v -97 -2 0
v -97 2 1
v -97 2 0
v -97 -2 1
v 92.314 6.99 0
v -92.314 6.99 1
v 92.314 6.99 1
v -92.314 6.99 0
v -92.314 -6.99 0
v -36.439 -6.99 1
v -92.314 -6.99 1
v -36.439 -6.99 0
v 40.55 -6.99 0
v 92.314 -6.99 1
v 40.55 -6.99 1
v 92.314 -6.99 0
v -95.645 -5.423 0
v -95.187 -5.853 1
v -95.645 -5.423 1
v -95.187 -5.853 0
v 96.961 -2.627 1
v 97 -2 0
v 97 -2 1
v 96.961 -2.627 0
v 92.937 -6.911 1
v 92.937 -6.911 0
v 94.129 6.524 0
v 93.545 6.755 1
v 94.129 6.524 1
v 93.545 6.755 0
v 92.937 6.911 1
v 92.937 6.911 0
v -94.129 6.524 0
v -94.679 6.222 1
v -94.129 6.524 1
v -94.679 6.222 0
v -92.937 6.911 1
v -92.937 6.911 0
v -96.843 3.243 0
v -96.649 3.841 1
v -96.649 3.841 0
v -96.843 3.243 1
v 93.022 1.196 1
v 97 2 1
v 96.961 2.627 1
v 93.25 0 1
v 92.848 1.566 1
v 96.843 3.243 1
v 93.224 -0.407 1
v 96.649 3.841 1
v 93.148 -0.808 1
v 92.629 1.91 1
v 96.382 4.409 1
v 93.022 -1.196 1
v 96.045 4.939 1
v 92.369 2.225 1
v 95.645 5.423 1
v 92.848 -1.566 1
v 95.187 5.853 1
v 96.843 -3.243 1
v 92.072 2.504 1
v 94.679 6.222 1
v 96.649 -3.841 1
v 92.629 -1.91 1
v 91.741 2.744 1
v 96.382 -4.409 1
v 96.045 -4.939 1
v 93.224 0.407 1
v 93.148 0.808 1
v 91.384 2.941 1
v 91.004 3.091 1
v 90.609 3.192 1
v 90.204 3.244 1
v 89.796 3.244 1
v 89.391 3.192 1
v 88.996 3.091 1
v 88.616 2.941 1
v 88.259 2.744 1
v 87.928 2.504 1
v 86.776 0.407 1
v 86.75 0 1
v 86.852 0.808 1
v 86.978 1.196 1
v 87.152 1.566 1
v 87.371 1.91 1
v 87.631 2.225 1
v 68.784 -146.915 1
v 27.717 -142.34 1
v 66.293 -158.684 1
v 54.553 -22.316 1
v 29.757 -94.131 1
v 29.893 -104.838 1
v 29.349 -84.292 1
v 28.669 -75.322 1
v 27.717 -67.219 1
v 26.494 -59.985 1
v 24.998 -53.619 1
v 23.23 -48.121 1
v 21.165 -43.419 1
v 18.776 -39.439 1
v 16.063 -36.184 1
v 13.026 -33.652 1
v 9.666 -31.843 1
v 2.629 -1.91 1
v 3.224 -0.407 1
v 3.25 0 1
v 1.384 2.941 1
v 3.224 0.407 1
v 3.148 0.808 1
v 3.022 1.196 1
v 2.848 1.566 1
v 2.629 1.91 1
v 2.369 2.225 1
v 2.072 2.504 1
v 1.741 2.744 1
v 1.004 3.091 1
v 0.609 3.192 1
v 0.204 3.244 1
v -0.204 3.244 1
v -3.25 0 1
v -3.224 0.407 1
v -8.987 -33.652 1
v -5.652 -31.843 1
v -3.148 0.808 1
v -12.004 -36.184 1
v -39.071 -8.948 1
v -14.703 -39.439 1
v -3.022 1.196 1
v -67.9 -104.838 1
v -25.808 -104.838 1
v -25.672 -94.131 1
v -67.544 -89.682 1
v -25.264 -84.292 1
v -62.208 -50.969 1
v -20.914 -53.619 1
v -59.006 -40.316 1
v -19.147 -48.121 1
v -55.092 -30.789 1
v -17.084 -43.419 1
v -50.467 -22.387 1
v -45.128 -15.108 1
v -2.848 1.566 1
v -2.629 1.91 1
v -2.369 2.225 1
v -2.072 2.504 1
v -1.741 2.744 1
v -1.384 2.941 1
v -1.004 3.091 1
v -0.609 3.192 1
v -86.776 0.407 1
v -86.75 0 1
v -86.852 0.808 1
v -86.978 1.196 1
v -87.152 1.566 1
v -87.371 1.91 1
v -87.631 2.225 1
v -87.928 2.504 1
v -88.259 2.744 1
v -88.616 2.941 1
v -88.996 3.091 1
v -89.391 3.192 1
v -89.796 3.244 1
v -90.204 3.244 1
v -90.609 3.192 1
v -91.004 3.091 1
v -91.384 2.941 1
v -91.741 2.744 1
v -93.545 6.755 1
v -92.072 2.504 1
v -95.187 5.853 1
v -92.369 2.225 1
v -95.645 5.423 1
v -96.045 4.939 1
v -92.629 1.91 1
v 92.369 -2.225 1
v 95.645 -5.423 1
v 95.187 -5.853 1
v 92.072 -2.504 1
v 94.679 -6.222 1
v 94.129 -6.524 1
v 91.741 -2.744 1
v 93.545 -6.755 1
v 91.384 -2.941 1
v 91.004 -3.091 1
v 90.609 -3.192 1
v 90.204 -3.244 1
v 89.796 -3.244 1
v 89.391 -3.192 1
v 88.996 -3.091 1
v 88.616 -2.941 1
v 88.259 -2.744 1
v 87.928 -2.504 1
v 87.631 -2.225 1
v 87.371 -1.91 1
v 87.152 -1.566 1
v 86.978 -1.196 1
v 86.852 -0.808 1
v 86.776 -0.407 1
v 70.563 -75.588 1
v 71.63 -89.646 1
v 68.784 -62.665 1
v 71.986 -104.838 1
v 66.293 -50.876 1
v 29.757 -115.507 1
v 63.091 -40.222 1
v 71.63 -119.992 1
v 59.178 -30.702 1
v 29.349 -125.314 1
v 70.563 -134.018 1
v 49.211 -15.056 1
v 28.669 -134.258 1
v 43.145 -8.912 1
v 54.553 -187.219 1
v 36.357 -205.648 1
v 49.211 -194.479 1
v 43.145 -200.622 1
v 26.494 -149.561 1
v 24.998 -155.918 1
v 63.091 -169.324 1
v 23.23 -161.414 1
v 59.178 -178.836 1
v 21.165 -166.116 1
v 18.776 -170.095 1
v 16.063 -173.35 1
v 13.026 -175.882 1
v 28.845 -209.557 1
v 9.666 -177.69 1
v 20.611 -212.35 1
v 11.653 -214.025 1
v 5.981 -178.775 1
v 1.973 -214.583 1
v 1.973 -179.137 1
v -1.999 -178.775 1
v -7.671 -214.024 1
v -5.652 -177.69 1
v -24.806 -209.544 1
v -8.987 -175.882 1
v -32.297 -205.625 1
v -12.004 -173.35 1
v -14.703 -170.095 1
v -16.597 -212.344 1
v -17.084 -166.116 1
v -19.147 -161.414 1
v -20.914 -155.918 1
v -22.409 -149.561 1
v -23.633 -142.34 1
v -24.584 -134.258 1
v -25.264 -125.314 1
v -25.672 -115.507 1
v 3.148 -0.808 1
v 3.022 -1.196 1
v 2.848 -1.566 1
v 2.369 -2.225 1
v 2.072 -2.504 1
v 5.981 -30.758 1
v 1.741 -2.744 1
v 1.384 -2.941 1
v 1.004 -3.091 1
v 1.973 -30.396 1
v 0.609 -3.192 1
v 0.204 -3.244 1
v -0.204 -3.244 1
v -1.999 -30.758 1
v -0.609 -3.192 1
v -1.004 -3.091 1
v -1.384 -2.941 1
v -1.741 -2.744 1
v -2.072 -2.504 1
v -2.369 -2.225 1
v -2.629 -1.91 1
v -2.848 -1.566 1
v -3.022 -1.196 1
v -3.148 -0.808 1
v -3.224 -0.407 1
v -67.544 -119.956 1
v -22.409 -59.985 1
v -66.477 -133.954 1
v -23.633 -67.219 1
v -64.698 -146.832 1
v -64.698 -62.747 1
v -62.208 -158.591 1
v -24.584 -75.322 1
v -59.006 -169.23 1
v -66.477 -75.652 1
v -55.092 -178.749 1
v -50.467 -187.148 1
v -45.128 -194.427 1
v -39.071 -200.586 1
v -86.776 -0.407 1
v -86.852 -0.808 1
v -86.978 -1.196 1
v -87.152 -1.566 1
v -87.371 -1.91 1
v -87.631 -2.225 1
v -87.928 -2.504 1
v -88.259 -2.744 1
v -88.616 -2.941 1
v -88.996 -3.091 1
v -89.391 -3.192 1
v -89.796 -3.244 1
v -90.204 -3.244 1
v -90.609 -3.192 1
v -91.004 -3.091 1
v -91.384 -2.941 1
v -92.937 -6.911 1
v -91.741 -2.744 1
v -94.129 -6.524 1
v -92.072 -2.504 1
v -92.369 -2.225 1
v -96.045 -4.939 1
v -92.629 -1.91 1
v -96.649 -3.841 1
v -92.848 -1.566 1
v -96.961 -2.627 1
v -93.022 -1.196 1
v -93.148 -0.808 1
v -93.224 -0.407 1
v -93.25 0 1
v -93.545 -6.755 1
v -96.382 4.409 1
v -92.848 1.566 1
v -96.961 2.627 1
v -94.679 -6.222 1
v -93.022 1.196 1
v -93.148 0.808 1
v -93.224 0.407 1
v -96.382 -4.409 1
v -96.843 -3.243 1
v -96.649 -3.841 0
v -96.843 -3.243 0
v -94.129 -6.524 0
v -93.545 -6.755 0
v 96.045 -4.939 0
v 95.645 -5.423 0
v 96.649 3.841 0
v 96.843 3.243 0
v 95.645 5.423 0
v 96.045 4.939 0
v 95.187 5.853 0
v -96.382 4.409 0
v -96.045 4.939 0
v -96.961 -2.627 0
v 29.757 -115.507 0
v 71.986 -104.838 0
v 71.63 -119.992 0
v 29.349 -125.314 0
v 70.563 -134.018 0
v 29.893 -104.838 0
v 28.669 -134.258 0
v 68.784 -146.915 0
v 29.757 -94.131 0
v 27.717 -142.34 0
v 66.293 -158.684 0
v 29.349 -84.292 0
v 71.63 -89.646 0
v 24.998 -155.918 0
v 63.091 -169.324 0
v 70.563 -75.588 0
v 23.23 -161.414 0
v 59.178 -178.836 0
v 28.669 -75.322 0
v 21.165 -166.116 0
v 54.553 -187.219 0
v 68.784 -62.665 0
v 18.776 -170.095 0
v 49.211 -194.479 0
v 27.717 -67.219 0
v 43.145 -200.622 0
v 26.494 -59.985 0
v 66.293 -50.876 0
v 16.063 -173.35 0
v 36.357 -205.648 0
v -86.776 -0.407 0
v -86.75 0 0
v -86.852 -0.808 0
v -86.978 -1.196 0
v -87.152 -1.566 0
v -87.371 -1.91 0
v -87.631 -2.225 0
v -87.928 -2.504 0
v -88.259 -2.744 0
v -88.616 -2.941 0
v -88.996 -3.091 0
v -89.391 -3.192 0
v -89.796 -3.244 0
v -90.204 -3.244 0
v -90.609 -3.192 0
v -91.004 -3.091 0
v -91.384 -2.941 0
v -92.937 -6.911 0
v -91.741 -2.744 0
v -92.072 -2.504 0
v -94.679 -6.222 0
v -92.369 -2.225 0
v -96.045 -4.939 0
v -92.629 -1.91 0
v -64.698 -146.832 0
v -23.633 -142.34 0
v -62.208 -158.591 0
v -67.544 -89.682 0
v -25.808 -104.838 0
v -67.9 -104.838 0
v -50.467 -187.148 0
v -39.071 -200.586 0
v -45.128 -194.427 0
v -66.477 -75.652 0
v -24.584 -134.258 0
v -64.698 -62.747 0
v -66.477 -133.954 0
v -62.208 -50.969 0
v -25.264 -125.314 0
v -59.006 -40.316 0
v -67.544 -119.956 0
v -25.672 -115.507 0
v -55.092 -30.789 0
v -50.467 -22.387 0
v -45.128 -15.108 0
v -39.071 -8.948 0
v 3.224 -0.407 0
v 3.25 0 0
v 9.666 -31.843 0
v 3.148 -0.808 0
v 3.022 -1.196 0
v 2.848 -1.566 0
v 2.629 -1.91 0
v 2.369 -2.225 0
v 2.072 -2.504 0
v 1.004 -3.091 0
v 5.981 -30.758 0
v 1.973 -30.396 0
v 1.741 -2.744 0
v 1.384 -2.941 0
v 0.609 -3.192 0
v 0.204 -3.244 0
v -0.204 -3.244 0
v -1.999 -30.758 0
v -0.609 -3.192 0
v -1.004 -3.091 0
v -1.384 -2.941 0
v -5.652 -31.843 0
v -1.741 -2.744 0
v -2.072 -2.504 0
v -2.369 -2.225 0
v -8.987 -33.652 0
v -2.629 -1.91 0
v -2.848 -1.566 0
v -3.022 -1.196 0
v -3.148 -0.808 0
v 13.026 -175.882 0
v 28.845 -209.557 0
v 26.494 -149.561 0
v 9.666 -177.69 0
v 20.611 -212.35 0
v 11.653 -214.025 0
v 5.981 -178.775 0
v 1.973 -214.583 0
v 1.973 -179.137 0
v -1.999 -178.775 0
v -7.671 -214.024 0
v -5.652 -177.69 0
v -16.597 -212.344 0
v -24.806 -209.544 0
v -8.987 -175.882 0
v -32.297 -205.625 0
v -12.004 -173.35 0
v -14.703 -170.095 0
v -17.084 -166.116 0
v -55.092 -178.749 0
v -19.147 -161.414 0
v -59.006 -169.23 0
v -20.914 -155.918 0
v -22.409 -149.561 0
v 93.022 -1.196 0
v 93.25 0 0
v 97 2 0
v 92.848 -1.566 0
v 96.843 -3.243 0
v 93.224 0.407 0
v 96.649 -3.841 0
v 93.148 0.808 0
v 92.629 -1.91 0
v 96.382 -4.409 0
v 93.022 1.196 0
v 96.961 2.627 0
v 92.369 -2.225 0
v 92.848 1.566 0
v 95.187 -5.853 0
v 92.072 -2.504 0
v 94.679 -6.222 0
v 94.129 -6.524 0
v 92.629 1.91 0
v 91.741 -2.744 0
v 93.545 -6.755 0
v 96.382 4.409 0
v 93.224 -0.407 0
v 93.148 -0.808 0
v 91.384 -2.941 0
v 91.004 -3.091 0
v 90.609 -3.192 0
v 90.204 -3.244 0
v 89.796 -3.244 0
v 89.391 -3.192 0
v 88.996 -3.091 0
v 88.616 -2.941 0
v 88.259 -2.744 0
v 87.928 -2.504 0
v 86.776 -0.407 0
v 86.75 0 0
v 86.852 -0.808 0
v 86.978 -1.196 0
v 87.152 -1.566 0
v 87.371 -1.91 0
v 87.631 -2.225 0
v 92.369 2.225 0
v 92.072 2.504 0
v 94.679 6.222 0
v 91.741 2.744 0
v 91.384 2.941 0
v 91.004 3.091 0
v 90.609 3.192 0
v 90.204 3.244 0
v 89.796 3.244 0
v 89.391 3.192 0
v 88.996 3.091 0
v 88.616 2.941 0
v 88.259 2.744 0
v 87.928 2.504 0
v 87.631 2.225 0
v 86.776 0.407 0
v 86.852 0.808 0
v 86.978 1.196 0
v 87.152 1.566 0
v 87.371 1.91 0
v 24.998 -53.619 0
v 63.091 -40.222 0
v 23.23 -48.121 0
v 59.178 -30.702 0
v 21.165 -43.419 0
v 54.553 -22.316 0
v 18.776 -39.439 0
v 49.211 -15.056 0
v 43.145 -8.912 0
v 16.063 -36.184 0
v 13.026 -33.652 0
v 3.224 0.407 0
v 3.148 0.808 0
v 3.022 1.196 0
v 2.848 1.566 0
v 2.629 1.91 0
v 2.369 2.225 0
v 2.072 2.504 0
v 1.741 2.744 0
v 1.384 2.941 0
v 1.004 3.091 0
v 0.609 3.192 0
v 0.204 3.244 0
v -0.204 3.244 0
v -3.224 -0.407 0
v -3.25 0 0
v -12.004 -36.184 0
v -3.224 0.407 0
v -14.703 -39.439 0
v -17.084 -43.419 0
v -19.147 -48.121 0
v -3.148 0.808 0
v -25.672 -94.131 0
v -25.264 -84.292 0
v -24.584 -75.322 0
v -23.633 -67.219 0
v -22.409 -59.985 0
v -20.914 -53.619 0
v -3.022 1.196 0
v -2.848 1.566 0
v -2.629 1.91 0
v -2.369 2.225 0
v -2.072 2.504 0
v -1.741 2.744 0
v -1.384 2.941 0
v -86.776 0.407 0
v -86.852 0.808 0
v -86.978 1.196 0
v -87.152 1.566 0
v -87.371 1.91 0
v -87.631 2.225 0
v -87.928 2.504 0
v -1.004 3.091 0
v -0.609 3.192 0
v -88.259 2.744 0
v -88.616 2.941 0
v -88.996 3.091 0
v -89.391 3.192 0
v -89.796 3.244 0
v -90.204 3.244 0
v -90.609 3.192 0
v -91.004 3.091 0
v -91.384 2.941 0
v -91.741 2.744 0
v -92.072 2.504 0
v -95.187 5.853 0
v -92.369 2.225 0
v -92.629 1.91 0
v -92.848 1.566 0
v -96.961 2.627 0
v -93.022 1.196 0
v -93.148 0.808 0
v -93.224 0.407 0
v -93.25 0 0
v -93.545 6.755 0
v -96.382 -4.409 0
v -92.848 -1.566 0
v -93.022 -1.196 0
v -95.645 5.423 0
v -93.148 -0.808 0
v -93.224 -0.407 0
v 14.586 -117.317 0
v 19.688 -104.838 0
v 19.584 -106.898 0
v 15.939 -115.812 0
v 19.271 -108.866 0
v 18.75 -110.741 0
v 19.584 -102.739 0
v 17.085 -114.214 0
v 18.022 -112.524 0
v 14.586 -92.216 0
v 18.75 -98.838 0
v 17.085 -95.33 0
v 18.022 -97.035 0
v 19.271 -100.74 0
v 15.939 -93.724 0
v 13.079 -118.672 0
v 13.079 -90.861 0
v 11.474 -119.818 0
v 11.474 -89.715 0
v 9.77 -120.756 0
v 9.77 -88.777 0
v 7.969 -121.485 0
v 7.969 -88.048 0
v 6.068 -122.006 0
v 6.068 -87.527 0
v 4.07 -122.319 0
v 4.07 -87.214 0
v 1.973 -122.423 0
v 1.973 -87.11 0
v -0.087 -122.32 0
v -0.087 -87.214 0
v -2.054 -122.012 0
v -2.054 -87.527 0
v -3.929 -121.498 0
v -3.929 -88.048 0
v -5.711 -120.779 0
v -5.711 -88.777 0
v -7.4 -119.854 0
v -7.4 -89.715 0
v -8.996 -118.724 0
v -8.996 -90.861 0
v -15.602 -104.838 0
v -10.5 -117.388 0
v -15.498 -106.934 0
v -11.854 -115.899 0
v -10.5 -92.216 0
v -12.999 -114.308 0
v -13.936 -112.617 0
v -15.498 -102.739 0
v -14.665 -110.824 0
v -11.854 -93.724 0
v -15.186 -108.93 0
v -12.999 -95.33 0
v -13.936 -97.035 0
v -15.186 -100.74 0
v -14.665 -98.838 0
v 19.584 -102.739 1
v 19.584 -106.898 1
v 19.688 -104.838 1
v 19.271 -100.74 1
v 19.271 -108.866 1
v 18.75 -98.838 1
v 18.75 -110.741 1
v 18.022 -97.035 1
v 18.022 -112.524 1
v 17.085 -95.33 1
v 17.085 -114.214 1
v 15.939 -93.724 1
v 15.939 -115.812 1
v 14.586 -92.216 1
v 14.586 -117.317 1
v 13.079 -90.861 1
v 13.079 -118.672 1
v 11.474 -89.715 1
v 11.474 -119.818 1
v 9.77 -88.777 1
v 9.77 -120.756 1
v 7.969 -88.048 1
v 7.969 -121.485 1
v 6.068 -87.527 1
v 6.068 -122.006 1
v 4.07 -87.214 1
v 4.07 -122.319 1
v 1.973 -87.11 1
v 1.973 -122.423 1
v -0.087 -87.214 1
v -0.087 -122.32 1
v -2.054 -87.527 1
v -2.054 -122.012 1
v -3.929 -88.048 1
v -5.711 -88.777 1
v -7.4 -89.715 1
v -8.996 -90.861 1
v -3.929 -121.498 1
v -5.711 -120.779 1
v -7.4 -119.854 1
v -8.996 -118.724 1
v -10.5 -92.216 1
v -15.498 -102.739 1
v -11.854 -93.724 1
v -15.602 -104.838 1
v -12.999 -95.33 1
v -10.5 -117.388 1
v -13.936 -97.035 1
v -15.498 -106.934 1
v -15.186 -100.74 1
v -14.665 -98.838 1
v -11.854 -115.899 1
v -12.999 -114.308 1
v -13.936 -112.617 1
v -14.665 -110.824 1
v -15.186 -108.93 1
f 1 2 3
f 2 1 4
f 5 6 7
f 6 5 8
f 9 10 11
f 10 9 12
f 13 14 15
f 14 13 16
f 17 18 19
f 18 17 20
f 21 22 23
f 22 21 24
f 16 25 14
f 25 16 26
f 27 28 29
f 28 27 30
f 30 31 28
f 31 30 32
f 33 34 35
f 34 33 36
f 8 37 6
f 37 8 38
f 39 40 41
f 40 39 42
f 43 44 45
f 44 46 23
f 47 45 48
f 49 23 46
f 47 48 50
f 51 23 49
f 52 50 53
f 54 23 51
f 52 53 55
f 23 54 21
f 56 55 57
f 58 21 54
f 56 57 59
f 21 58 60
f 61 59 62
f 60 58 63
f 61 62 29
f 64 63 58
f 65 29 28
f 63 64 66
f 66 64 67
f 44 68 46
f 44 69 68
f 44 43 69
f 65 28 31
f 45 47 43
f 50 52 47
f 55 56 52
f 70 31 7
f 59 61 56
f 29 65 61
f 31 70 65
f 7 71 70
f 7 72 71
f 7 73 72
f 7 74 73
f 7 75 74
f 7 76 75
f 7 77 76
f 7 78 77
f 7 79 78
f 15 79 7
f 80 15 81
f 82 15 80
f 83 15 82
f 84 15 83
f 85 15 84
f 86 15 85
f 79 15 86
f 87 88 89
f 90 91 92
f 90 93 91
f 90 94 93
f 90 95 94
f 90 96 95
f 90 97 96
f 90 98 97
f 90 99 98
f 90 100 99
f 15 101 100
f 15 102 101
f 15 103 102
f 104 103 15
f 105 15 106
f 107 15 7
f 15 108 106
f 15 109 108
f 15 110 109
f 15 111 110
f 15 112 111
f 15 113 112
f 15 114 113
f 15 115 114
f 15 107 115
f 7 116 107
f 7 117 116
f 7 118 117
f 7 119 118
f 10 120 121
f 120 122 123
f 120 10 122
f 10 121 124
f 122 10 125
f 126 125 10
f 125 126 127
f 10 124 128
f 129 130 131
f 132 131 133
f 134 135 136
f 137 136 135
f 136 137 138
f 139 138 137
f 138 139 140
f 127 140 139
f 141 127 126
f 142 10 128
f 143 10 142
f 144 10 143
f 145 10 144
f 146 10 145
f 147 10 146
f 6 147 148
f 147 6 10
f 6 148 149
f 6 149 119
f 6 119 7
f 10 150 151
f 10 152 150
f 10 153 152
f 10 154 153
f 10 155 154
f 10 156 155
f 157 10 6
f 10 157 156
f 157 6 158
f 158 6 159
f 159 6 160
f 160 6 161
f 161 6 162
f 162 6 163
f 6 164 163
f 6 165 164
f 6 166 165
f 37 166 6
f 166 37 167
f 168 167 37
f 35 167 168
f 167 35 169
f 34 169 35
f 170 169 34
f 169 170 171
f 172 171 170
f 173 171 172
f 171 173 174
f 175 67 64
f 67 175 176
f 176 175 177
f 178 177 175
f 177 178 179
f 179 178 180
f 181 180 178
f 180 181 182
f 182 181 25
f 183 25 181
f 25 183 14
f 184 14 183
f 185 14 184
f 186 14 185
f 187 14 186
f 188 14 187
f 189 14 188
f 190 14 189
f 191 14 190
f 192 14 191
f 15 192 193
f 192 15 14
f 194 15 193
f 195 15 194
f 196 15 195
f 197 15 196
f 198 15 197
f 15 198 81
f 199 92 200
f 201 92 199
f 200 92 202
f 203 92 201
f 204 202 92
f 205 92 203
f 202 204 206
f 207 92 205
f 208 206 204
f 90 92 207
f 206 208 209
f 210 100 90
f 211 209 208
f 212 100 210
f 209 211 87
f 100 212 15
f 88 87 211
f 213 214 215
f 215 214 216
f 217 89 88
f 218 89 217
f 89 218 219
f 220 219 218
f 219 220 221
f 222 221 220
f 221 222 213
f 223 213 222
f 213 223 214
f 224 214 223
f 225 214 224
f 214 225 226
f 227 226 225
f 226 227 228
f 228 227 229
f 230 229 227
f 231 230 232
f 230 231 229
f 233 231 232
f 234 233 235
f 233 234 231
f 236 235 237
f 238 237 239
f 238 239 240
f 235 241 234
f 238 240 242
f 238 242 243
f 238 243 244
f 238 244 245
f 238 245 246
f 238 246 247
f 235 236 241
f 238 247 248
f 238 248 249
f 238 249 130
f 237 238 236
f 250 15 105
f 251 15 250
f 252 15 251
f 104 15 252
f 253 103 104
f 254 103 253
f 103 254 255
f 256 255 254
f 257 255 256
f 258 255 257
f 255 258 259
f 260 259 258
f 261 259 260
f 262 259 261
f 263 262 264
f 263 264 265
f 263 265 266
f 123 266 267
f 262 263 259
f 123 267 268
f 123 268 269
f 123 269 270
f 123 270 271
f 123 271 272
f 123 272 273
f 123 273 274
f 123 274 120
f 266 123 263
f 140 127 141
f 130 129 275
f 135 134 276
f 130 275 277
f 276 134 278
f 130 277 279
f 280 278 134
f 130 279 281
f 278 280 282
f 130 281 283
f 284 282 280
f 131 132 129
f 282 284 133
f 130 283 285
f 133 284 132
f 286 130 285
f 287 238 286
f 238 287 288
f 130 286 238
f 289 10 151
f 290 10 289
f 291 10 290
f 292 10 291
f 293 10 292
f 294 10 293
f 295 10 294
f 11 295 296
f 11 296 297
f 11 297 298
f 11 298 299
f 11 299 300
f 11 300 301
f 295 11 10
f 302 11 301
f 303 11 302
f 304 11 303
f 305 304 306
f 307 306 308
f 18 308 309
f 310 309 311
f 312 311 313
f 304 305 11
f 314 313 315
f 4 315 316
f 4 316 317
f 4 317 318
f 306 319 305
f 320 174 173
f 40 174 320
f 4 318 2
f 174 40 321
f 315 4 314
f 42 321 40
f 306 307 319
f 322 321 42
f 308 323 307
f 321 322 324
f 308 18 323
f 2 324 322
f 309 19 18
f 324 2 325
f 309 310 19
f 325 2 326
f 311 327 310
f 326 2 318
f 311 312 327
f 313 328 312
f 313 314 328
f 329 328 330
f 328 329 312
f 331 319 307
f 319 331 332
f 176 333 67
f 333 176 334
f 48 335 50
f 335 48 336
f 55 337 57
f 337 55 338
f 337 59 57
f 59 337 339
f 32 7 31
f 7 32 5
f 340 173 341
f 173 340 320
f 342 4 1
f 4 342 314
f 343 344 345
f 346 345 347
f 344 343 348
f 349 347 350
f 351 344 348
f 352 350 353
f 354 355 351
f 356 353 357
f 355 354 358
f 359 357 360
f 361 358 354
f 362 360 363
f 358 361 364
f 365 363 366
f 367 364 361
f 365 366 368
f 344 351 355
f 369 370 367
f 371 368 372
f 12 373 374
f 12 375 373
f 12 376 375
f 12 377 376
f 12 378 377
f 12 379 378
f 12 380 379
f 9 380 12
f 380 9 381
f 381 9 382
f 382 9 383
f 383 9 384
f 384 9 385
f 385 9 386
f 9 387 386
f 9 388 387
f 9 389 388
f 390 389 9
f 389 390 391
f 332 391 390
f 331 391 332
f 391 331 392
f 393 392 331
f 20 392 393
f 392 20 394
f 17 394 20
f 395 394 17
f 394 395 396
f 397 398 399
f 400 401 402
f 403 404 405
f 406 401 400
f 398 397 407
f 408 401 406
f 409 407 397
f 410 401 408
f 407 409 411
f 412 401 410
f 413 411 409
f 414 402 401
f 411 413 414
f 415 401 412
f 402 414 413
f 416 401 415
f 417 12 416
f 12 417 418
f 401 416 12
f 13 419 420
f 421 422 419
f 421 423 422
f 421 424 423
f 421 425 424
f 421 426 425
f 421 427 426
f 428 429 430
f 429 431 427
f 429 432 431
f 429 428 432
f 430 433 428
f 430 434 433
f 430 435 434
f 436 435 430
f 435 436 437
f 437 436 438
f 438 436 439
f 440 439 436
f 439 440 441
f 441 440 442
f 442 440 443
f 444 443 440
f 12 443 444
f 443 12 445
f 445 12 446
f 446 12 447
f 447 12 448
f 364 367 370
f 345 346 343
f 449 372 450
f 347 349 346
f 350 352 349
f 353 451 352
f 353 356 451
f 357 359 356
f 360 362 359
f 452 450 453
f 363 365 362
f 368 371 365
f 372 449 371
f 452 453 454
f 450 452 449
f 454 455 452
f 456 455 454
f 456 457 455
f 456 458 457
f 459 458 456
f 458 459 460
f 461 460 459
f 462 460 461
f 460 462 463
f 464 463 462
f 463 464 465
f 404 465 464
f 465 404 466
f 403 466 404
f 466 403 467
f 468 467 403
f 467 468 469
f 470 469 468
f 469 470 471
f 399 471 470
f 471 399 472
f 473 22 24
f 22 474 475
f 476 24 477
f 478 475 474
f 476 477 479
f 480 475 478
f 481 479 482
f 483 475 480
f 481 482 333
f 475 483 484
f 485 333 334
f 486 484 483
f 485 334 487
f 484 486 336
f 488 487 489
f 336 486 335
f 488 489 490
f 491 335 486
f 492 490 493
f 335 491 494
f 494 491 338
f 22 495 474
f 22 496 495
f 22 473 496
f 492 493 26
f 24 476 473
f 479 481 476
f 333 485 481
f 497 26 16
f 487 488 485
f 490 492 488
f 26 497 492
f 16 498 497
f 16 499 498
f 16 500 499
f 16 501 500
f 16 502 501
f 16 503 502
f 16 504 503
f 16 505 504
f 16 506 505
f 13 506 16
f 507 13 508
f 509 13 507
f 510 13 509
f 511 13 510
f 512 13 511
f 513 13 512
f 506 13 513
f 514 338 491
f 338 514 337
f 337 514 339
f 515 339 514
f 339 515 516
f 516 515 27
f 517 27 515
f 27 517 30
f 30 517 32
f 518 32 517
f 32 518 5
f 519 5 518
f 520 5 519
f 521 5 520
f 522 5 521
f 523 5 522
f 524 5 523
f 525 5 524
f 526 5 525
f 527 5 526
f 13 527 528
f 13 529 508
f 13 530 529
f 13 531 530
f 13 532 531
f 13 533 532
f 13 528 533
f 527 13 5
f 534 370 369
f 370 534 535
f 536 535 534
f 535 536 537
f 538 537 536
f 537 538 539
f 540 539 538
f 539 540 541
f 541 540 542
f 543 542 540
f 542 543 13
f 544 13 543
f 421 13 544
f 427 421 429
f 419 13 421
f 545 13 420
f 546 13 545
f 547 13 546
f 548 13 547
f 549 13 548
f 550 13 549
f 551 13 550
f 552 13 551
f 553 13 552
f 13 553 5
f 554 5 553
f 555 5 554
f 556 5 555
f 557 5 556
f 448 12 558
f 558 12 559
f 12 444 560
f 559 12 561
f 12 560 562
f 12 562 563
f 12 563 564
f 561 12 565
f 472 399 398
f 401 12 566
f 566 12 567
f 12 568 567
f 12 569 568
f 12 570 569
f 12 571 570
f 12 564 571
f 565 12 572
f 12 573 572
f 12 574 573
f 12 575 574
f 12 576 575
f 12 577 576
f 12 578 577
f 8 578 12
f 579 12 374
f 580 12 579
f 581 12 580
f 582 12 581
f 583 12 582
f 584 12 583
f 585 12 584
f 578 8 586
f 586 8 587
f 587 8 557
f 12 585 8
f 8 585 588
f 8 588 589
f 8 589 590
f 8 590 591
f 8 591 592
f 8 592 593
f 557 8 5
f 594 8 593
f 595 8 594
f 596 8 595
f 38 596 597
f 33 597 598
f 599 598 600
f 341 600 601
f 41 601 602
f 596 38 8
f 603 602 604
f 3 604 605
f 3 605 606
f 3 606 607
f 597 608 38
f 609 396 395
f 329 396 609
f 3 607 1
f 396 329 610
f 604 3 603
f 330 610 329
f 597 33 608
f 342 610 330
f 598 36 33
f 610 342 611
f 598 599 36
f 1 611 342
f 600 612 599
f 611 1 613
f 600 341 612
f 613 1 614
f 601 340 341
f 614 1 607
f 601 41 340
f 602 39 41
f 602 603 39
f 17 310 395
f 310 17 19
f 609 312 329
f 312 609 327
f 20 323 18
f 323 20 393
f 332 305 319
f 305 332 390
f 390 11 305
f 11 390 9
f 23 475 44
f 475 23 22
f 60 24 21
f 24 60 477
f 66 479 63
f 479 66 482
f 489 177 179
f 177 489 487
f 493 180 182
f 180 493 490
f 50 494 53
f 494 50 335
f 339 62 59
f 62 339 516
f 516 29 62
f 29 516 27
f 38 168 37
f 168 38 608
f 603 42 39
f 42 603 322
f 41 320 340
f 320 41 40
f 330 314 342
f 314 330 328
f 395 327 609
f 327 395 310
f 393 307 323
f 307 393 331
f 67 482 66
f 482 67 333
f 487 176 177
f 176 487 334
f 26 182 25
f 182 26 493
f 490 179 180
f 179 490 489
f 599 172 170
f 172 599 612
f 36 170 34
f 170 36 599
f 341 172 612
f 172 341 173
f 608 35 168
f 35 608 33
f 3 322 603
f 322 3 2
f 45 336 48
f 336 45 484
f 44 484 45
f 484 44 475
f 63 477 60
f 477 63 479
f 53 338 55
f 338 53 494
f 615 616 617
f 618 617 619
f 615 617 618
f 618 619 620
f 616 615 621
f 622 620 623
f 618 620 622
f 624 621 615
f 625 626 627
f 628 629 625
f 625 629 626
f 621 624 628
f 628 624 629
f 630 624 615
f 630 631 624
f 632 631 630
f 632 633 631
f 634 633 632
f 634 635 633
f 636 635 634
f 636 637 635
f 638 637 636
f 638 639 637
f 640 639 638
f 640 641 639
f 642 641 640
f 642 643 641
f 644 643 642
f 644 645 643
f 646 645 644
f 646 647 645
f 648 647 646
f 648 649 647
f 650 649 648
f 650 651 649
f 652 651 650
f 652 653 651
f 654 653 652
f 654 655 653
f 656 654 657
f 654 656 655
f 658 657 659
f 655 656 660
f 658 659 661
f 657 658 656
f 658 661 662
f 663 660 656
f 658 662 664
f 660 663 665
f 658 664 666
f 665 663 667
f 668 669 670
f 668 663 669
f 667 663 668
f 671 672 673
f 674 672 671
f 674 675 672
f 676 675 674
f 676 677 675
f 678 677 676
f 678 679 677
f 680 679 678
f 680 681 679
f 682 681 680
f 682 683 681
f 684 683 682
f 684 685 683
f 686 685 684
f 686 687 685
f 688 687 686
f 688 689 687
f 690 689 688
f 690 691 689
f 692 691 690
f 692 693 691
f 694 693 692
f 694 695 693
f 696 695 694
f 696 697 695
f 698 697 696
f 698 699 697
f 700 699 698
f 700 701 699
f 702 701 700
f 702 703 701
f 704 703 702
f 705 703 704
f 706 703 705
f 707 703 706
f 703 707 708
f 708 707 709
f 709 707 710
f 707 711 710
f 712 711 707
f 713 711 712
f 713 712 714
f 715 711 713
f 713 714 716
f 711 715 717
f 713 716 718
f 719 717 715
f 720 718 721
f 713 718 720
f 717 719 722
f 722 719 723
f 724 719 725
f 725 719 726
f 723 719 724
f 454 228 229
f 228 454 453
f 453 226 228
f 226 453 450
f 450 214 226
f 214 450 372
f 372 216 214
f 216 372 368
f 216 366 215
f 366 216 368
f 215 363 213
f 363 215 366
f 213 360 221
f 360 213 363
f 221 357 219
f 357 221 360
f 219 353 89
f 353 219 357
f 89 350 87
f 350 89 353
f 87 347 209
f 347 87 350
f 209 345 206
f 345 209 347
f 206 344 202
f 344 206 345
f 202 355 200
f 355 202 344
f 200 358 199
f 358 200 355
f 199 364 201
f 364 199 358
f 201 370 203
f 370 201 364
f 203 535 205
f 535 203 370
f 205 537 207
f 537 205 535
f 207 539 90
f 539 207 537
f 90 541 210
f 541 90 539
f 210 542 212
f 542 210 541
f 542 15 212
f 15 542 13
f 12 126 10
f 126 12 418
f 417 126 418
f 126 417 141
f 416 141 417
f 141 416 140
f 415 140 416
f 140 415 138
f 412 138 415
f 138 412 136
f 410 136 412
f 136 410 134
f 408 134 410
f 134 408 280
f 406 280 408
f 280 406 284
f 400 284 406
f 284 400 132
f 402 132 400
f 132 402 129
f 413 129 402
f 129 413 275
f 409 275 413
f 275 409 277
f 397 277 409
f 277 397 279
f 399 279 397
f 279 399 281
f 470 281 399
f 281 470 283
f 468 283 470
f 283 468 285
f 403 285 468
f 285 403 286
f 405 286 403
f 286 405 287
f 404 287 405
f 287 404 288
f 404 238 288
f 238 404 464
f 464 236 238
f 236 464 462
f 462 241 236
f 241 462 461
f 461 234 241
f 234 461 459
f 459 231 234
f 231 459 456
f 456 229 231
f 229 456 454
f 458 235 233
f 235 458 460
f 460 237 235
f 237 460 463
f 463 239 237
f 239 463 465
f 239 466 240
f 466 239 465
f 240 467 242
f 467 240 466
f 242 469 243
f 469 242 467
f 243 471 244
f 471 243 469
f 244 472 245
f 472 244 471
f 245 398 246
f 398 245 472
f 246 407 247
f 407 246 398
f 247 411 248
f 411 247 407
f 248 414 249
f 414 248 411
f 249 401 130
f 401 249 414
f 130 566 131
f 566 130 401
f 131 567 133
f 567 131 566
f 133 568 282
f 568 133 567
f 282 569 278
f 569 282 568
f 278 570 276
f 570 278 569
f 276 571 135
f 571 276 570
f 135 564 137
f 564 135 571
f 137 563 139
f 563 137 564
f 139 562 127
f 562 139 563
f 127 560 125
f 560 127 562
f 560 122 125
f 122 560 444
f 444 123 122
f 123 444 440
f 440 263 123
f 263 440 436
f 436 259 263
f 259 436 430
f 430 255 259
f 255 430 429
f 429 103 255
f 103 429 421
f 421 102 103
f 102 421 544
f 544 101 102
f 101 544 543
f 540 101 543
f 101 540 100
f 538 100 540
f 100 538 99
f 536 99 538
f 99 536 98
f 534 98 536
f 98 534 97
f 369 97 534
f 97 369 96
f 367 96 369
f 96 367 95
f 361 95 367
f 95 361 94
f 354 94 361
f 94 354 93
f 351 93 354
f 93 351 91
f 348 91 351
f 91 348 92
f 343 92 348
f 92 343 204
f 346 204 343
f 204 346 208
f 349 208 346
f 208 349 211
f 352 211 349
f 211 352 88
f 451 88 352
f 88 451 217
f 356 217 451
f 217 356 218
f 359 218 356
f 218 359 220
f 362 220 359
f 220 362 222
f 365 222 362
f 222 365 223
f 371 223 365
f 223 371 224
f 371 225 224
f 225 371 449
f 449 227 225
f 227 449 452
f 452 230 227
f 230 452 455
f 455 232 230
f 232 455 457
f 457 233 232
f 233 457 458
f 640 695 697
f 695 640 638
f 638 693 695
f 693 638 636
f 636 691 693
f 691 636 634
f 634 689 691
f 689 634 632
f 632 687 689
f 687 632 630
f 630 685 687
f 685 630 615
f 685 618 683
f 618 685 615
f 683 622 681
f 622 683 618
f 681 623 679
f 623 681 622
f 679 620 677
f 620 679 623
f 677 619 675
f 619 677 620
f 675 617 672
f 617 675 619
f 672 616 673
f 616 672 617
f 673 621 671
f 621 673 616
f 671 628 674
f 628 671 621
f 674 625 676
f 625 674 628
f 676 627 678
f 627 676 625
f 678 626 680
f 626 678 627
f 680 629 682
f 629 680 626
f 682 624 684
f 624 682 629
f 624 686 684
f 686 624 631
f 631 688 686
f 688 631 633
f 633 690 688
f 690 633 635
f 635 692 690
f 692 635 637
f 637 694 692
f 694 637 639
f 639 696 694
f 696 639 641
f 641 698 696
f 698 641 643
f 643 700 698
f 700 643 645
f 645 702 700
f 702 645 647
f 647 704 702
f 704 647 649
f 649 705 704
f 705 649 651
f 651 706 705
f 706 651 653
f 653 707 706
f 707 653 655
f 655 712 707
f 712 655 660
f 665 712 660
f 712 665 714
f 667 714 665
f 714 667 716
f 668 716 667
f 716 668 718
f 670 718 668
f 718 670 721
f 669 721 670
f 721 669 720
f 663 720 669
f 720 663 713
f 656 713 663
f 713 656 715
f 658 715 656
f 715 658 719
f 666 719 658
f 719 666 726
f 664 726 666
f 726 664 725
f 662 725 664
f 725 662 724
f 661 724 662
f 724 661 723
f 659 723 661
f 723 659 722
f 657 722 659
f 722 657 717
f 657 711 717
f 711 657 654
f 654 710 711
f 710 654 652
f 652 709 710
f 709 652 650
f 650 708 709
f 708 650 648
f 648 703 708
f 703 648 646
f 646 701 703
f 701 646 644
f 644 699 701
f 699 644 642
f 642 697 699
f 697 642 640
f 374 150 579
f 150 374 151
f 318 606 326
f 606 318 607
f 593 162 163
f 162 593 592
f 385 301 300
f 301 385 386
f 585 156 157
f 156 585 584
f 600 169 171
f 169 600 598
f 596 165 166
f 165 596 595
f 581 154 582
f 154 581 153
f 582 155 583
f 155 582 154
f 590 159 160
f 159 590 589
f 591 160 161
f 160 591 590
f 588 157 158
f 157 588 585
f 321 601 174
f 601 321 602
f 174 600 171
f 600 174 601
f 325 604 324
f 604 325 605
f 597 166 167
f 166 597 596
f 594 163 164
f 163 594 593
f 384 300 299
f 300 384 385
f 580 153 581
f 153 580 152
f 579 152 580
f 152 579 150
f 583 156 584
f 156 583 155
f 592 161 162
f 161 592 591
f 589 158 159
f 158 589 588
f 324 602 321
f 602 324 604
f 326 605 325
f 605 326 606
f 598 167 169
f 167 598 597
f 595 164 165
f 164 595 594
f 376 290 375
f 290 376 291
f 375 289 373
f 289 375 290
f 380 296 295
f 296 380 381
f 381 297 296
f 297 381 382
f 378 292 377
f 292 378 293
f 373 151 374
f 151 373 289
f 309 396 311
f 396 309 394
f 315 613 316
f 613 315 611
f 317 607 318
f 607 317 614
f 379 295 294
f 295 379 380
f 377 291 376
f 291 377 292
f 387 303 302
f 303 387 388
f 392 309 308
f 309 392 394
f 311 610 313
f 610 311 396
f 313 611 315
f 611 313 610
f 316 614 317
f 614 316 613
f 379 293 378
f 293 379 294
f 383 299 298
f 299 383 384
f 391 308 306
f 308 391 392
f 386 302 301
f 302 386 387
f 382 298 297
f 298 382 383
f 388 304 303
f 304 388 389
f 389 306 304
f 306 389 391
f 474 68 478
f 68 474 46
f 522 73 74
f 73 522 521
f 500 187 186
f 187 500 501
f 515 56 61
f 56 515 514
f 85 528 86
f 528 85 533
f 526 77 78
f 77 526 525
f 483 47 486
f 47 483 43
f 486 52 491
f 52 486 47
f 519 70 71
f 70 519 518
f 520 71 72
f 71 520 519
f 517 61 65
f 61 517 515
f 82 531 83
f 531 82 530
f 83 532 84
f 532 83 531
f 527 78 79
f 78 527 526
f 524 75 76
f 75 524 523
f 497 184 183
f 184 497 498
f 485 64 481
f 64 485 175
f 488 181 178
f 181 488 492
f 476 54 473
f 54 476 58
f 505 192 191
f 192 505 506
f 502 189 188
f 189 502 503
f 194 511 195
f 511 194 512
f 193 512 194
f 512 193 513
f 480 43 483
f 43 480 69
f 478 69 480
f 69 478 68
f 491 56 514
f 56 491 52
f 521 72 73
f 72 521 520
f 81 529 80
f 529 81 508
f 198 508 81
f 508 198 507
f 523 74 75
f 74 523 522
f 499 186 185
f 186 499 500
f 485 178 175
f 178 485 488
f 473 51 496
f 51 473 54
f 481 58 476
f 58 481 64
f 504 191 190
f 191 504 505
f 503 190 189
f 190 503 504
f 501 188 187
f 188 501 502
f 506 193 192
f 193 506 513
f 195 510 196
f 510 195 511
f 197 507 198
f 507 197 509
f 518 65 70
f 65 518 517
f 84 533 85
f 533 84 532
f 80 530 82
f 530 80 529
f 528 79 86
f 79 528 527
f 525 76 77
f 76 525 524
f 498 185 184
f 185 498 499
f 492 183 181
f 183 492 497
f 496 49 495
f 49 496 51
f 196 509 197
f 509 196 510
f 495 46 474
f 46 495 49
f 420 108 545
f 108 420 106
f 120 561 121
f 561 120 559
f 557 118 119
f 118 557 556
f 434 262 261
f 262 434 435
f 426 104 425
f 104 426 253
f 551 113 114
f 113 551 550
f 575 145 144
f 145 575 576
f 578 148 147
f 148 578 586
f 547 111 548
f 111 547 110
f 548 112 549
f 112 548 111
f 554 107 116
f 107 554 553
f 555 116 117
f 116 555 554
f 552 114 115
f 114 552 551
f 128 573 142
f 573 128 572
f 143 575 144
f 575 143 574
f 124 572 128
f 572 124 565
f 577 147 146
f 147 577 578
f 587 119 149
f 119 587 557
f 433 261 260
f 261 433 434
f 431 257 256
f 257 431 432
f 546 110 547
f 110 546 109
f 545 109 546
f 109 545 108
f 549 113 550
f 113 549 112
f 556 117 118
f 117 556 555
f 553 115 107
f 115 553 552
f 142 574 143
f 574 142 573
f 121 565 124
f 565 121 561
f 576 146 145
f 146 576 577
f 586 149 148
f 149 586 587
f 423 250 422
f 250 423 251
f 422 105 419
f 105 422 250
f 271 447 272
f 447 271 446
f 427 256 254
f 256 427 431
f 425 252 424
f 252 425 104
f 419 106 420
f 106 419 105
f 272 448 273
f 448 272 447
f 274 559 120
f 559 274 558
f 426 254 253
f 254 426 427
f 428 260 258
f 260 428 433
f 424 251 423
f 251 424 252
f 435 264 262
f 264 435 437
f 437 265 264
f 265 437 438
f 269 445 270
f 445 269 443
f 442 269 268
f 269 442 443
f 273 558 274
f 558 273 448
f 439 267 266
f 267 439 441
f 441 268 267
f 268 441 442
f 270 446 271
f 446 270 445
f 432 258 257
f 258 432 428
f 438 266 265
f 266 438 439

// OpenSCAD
$fn = 50;


difference() {
	union() {
		translate(v = [0, 0, 0]) {
			rotate(a = [0, 0, 0]) {
				hull() {
					translate(v = [-92.0000000000, 2.0000000000, 0]) {
						rotate(a = [0, 0, 0]) {
							translate(v = [0, 0, 0]) {
								rotate(a = [0, 0, 0]) {
									cylinder(h = 1, r = 5);
								}
							}
						}
					}
					translate(v = [92.0000000000, 2.0000000000, 0]) {
						rotate(a = [0, 0, 0]) {
							translate(v = [0, 0, 0]) {
								rotate(a = [0, 0, 0]) {
									cylinder(h = 1, r = 5);
								}
							}
						}
					}
					translate(v = [-92.0000000000, -2.0000000000, 0]) {
						rotate(a = [0, 0, 0]) {
							translate(v = [0, 0, 0]) {
								rotate(a = [0, 0, 0]) {
									cylinder(h = 1, r = 5);
								}
							}
						}
					}
					translate(v = [92.0000000000, -2.0000000000, 0]) {
						rotate(a = [0, 0, 0]) {
							translate(v = [0, 0, 0]) {
								rotate(a = [0, 0, 0]) {
									cylinder(h = 1, r = 5);
								}
							}
						}
					}
				}
			}
		}
		translate(v = [0, 0, 0]) {
			rotate(a = [0, 0, 0]) {
				linear_extrude(height = 1) {
					text(font = "DejaVu Sans Mono:style=Bold", halign = "center", size = 209.0000000000, text = "0", valign = "top");
				}
			}
		}
	}
	union() {
		translate(v = [-90.0000000000, 0.0000000000, -125.0000000000]) {
			rotate(a = [0, 0, 0]) {
				cylinder(h = 250, r = 3.2500000000);
			}
		}
		translate(v = [90.0000000000, 0.0000000000, -125.0000000000]) {
			rotate(a = [0, 0, 0]) {
				cylinder(h = 250, r = 3.2500000000);
			}
		}
		translate(v = [90.0000000000, 0.0000000000, -125.0000000000]) {
			rotate(a = [0, 0, 0]) {
				cylinder(h = 250, r = 3.2500000000);
			}
		}
		translate(v = [0, 0, -125.0000000000]) {
			rotate(a = [0, 0, 0]) {
				cylinder(h = 250, r = 3.2500000000);
			}
		}
	}
}
